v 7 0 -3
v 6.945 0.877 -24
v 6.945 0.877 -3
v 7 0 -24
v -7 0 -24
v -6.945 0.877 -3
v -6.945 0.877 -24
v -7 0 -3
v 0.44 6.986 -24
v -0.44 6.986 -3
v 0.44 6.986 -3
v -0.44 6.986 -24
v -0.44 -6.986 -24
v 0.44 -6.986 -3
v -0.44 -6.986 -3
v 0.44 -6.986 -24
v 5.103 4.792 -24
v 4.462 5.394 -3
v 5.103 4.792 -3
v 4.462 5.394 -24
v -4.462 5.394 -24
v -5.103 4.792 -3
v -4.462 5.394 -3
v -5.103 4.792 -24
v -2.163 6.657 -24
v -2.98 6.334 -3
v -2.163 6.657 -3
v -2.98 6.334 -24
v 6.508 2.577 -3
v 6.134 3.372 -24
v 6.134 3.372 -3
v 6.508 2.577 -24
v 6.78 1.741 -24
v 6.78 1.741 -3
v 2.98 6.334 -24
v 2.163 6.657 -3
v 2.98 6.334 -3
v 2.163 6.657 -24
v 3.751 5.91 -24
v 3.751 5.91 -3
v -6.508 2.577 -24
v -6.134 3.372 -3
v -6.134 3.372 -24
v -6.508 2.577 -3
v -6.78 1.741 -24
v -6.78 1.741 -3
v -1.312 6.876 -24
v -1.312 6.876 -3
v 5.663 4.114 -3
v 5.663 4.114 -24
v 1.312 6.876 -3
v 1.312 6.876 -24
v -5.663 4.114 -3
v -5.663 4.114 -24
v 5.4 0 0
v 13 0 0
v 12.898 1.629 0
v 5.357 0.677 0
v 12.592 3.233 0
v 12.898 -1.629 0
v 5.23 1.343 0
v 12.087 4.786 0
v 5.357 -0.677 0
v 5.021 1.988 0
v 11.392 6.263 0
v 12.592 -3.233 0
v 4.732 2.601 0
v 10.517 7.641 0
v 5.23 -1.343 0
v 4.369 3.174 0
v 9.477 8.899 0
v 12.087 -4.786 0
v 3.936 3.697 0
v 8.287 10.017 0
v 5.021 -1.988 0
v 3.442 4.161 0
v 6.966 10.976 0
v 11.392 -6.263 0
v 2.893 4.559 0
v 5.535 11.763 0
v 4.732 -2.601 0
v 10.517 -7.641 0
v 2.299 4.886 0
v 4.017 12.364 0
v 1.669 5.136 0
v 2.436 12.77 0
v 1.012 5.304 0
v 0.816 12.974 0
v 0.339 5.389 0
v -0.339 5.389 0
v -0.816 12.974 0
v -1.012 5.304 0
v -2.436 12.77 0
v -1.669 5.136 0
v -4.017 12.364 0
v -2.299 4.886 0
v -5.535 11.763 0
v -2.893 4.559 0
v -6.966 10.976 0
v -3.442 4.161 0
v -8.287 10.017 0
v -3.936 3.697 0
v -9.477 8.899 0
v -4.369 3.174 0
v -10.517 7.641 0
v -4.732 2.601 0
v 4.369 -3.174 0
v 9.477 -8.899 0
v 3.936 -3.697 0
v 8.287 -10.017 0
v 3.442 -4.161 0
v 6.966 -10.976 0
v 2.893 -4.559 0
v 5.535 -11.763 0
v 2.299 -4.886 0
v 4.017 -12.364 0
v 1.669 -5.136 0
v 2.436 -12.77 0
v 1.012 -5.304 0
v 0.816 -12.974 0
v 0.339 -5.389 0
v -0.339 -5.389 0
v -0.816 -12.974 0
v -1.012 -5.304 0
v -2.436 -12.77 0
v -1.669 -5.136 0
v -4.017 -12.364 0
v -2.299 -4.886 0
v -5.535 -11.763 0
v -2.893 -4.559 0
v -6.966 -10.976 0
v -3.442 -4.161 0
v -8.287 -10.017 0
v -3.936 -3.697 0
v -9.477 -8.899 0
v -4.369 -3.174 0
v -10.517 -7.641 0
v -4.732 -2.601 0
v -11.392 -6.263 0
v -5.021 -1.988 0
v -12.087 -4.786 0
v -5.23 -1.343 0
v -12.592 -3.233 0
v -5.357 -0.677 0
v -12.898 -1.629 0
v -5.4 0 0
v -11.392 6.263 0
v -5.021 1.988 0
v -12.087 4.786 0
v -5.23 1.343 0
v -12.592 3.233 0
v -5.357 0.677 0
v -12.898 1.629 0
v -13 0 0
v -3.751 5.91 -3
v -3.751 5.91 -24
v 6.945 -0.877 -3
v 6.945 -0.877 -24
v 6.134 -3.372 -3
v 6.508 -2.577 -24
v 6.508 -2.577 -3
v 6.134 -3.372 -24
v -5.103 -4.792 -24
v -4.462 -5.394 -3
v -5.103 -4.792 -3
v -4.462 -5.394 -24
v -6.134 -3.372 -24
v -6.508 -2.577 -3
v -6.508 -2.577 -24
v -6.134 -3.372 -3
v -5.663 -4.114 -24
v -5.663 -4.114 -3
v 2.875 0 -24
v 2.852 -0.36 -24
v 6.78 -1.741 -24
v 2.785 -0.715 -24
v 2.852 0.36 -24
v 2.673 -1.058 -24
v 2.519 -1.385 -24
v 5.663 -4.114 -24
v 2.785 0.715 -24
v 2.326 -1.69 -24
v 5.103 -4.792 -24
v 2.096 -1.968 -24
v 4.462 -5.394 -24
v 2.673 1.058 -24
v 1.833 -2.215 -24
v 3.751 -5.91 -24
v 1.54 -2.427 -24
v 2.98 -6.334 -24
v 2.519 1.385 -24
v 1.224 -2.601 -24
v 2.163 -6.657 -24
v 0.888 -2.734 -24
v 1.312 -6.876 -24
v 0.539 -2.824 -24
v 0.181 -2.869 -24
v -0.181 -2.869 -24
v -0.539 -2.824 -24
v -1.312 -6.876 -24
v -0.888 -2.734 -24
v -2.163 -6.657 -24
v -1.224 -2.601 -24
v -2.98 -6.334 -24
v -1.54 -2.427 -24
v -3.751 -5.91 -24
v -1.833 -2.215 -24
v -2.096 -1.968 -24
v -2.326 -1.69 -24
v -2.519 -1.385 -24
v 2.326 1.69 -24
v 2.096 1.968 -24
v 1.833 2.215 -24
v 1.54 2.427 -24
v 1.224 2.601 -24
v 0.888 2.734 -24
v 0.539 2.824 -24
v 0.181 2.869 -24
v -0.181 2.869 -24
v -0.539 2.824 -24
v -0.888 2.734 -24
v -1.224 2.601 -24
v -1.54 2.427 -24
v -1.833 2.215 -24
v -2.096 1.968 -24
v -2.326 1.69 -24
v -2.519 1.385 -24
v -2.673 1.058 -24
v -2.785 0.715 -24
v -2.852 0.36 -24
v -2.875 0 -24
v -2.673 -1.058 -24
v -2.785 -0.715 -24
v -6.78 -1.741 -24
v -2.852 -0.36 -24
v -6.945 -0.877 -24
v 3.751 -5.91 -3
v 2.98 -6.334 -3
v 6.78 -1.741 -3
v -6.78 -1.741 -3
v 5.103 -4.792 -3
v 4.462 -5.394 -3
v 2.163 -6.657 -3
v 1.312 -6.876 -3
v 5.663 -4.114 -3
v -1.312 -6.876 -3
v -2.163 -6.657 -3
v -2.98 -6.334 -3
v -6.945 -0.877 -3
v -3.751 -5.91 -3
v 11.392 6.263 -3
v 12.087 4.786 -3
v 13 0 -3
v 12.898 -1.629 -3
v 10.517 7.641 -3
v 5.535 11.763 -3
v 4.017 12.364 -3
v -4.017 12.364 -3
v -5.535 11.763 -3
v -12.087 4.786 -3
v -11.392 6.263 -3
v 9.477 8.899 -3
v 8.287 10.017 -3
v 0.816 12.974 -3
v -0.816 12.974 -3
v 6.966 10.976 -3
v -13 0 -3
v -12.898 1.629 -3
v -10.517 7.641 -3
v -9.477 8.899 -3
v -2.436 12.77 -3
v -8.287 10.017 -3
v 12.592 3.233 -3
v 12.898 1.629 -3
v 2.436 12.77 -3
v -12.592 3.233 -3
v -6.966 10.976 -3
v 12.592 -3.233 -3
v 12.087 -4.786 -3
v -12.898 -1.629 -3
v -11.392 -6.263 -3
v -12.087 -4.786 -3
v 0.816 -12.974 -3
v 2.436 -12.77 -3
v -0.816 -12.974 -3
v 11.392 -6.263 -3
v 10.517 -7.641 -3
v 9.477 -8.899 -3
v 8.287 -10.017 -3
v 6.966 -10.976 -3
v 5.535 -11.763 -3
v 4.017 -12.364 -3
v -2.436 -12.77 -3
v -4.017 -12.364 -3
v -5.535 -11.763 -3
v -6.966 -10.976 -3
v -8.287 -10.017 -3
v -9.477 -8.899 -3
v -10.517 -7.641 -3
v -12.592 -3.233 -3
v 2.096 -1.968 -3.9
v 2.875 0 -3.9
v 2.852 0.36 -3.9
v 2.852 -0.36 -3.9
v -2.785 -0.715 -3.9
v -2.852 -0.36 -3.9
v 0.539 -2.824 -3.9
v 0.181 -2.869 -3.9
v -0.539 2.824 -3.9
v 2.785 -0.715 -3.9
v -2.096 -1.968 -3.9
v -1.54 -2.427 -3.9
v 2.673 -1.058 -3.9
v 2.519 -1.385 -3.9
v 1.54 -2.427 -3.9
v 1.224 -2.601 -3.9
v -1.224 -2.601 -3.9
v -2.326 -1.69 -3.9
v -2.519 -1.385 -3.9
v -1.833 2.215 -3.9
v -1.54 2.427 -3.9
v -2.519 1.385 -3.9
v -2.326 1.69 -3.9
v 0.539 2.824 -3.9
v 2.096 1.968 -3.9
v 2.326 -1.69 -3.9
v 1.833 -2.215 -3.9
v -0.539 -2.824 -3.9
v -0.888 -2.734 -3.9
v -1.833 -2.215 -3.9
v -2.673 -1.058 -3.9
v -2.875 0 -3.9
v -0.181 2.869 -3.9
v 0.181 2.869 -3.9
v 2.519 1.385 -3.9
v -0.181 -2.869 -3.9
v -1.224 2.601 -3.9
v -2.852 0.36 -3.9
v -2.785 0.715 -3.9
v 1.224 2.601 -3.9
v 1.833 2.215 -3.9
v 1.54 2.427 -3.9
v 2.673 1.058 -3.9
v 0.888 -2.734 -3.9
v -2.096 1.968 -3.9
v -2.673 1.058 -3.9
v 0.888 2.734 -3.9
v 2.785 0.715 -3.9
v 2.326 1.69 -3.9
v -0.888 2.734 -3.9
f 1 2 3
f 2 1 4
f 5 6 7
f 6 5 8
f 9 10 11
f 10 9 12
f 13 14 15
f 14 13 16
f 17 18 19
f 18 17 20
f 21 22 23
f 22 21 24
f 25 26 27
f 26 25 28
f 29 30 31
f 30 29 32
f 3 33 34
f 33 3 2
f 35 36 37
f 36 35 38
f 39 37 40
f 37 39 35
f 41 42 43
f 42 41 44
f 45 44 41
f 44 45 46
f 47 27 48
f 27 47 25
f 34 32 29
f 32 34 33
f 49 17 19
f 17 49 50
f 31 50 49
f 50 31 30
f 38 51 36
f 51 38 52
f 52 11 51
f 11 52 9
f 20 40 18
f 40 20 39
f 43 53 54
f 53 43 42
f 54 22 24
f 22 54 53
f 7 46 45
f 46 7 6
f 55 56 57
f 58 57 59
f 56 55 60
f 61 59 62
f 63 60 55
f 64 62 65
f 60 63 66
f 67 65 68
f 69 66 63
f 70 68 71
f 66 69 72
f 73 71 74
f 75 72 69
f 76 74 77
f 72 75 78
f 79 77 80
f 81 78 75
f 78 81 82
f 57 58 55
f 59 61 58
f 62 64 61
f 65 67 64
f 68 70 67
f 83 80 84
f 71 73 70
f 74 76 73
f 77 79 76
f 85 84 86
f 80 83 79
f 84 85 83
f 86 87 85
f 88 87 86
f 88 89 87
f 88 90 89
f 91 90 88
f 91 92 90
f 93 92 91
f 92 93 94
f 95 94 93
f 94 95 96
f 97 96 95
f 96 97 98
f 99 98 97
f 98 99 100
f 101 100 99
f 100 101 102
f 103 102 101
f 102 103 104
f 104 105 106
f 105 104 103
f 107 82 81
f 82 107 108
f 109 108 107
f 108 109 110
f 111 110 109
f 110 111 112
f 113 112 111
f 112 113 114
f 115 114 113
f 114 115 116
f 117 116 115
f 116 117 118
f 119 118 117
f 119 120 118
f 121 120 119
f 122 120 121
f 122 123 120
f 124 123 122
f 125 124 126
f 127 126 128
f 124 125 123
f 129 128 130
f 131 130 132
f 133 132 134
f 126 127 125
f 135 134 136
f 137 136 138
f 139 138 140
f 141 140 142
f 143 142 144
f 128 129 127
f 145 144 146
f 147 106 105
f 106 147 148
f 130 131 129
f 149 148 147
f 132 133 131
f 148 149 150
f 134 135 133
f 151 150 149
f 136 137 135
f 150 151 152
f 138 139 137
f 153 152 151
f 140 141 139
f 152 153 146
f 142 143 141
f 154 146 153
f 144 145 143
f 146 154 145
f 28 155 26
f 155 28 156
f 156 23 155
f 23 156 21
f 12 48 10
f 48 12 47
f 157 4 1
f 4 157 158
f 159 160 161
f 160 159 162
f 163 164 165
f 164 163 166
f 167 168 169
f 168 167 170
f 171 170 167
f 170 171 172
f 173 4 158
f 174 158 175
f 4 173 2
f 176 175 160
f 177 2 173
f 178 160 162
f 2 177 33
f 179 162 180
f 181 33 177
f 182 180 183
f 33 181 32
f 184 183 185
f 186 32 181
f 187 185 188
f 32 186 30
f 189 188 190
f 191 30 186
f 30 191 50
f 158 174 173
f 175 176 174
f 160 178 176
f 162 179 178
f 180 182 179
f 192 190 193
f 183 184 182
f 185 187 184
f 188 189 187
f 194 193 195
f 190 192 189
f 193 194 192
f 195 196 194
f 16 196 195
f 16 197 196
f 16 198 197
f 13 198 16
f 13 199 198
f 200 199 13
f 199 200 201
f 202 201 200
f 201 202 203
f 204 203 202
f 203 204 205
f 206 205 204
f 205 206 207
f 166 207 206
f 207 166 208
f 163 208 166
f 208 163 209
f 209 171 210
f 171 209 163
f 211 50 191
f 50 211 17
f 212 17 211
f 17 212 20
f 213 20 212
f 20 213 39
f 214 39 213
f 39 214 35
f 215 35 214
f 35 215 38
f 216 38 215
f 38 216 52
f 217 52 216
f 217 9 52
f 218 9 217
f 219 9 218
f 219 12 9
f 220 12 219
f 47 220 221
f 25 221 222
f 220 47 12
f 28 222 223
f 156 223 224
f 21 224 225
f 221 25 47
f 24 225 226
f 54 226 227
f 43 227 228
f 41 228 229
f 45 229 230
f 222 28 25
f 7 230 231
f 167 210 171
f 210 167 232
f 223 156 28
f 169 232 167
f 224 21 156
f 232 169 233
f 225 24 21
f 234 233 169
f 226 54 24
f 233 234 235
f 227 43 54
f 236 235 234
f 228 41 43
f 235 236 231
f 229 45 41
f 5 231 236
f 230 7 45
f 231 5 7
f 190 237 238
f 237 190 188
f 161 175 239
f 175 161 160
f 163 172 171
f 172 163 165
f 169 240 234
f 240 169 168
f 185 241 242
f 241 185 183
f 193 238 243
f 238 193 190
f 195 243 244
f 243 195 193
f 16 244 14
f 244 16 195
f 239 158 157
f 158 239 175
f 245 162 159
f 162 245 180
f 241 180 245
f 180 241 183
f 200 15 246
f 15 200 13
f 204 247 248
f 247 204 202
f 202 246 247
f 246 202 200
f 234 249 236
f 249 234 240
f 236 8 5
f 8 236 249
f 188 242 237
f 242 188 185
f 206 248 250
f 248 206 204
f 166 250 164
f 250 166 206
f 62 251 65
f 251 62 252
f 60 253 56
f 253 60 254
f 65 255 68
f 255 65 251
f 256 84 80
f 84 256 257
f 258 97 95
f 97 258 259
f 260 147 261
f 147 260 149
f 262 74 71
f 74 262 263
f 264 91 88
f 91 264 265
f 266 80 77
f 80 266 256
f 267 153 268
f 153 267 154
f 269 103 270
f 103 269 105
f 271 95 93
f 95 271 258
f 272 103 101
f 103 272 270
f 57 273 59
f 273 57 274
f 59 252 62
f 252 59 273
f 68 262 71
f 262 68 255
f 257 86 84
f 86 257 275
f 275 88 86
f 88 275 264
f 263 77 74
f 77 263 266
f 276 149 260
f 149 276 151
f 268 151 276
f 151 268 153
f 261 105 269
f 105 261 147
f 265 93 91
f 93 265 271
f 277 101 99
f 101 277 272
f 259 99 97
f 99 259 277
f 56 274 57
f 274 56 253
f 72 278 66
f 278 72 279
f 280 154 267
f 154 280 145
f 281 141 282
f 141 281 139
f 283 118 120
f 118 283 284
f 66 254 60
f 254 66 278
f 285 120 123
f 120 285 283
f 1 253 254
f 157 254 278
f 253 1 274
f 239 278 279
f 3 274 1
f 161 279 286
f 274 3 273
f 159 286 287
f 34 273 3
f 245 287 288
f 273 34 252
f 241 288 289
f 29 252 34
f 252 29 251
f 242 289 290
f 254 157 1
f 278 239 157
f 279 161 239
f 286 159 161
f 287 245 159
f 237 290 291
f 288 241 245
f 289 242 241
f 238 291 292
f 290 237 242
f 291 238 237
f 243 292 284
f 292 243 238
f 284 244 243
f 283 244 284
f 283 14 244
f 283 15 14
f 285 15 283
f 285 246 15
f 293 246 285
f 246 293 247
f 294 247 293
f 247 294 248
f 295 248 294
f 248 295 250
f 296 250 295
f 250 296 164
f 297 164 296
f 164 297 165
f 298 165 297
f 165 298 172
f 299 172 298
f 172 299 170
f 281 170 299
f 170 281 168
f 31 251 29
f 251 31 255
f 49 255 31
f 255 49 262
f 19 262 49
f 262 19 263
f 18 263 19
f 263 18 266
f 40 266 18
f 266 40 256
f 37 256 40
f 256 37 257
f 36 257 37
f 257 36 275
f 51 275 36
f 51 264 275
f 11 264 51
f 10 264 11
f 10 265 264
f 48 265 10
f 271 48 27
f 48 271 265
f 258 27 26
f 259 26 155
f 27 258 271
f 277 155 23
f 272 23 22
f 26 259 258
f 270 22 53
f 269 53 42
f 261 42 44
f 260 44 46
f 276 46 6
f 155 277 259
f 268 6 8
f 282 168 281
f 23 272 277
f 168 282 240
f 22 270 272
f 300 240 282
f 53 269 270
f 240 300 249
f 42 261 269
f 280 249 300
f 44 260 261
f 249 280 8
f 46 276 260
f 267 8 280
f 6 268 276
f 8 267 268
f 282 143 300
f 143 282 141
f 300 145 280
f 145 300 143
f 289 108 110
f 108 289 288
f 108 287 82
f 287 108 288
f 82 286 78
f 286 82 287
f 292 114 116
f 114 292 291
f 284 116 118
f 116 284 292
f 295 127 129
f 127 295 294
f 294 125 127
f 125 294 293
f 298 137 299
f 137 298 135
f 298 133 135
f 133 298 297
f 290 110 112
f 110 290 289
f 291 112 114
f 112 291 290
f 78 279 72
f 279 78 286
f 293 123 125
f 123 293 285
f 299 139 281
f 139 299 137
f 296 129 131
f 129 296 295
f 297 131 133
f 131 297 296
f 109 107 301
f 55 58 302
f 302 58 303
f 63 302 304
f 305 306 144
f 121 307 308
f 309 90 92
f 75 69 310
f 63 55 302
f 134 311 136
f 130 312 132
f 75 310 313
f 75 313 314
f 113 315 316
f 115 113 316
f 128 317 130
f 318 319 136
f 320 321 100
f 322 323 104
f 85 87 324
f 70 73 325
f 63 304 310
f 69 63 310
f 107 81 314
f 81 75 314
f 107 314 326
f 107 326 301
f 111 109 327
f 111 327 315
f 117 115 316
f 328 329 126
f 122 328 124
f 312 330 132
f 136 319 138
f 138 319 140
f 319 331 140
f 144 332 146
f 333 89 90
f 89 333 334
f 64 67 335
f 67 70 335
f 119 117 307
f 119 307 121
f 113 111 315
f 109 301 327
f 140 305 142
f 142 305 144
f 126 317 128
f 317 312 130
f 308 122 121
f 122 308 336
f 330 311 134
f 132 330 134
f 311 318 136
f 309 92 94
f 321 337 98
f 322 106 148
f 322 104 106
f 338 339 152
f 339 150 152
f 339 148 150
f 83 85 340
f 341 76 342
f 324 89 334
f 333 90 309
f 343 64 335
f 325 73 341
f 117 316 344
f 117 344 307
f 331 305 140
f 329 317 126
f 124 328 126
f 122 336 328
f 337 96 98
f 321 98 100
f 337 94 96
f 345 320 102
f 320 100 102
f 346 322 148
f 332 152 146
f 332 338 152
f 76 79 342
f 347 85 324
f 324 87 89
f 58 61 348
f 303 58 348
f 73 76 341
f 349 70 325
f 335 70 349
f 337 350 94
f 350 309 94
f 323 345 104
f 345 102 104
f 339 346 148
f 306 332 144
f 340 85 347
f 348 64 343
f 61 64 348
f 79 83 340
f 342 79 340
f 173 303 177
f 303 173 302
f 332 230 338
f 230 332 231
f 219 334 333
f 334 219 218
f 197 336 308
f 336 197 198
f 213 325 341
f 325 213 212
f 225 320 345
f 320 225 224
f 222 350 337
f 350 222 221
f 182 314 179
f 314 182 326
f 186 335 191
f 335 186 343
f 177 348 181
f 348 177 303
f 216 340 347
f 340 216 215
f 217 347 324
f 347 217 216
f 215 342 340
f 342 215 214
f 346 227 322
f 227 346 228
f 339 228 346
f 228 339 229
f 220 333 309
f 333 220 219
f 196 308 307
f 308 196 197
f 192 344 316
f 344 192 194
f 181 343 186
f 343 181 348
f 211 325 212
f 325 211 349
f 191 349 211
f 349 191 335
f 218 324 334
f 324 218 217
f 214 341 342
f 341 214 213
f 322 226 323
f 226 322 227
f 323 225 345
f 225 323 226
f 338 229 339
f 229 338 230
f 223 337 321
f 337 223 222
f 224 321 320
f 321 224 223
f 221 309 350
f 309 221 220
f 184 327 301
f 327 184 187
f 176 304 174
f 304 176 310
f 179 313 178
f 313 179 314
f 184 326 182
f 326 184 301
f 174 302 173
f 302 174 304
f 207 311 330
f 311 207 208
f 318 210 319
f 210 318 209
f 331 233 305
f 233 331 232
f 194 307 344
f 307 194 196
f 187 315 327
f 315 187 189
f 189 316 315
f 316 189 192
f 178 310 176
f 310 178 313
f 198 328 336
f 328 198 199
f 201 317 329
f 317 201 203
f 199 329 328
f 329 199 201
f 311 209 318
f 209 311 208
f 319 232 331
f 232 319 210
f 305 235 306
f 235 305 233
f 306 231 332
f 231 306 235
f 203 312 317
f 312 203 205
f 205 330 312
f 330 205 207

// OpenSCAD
$fn = 50;


difference() {
	union() {
		translate(v = [0, 0, -24.0000000000]) {
			cylinder(h = 24, r = 7.0000000000);
		}
		translate(v = [0, 0, -3.0000000000]) {
			cylinder(h = 3, r = 13.0000000000);
		}
	}
	union() {
		translate(v = [0, 0, 0]) {
			rotate(a = [0, 0, 0]) {
				difference() {
					union() {
						#translate(v = [0, 0, -24.0000000000]) {
							cylinder(h = 24, r = 2.6000000000);
						}
						#translate(v = [0, 0, -3.9000000000]) {
							cylinder(h = 3.9000000000, r = 7.0000000000, r1 = 2.8750000000, r2 = 5.4000000000);
						}
						#translate(v = [0, 0, -24.0000000000]) {
							cylinder(h = 24, r = 2.8750000000);
						}
						#translate(v = [0, 0, -24.0000000000]) {
							cylinder(h = 24, r = 2.6000000000);
						}
					}
					union();
				}
			}
		}
	}
}
